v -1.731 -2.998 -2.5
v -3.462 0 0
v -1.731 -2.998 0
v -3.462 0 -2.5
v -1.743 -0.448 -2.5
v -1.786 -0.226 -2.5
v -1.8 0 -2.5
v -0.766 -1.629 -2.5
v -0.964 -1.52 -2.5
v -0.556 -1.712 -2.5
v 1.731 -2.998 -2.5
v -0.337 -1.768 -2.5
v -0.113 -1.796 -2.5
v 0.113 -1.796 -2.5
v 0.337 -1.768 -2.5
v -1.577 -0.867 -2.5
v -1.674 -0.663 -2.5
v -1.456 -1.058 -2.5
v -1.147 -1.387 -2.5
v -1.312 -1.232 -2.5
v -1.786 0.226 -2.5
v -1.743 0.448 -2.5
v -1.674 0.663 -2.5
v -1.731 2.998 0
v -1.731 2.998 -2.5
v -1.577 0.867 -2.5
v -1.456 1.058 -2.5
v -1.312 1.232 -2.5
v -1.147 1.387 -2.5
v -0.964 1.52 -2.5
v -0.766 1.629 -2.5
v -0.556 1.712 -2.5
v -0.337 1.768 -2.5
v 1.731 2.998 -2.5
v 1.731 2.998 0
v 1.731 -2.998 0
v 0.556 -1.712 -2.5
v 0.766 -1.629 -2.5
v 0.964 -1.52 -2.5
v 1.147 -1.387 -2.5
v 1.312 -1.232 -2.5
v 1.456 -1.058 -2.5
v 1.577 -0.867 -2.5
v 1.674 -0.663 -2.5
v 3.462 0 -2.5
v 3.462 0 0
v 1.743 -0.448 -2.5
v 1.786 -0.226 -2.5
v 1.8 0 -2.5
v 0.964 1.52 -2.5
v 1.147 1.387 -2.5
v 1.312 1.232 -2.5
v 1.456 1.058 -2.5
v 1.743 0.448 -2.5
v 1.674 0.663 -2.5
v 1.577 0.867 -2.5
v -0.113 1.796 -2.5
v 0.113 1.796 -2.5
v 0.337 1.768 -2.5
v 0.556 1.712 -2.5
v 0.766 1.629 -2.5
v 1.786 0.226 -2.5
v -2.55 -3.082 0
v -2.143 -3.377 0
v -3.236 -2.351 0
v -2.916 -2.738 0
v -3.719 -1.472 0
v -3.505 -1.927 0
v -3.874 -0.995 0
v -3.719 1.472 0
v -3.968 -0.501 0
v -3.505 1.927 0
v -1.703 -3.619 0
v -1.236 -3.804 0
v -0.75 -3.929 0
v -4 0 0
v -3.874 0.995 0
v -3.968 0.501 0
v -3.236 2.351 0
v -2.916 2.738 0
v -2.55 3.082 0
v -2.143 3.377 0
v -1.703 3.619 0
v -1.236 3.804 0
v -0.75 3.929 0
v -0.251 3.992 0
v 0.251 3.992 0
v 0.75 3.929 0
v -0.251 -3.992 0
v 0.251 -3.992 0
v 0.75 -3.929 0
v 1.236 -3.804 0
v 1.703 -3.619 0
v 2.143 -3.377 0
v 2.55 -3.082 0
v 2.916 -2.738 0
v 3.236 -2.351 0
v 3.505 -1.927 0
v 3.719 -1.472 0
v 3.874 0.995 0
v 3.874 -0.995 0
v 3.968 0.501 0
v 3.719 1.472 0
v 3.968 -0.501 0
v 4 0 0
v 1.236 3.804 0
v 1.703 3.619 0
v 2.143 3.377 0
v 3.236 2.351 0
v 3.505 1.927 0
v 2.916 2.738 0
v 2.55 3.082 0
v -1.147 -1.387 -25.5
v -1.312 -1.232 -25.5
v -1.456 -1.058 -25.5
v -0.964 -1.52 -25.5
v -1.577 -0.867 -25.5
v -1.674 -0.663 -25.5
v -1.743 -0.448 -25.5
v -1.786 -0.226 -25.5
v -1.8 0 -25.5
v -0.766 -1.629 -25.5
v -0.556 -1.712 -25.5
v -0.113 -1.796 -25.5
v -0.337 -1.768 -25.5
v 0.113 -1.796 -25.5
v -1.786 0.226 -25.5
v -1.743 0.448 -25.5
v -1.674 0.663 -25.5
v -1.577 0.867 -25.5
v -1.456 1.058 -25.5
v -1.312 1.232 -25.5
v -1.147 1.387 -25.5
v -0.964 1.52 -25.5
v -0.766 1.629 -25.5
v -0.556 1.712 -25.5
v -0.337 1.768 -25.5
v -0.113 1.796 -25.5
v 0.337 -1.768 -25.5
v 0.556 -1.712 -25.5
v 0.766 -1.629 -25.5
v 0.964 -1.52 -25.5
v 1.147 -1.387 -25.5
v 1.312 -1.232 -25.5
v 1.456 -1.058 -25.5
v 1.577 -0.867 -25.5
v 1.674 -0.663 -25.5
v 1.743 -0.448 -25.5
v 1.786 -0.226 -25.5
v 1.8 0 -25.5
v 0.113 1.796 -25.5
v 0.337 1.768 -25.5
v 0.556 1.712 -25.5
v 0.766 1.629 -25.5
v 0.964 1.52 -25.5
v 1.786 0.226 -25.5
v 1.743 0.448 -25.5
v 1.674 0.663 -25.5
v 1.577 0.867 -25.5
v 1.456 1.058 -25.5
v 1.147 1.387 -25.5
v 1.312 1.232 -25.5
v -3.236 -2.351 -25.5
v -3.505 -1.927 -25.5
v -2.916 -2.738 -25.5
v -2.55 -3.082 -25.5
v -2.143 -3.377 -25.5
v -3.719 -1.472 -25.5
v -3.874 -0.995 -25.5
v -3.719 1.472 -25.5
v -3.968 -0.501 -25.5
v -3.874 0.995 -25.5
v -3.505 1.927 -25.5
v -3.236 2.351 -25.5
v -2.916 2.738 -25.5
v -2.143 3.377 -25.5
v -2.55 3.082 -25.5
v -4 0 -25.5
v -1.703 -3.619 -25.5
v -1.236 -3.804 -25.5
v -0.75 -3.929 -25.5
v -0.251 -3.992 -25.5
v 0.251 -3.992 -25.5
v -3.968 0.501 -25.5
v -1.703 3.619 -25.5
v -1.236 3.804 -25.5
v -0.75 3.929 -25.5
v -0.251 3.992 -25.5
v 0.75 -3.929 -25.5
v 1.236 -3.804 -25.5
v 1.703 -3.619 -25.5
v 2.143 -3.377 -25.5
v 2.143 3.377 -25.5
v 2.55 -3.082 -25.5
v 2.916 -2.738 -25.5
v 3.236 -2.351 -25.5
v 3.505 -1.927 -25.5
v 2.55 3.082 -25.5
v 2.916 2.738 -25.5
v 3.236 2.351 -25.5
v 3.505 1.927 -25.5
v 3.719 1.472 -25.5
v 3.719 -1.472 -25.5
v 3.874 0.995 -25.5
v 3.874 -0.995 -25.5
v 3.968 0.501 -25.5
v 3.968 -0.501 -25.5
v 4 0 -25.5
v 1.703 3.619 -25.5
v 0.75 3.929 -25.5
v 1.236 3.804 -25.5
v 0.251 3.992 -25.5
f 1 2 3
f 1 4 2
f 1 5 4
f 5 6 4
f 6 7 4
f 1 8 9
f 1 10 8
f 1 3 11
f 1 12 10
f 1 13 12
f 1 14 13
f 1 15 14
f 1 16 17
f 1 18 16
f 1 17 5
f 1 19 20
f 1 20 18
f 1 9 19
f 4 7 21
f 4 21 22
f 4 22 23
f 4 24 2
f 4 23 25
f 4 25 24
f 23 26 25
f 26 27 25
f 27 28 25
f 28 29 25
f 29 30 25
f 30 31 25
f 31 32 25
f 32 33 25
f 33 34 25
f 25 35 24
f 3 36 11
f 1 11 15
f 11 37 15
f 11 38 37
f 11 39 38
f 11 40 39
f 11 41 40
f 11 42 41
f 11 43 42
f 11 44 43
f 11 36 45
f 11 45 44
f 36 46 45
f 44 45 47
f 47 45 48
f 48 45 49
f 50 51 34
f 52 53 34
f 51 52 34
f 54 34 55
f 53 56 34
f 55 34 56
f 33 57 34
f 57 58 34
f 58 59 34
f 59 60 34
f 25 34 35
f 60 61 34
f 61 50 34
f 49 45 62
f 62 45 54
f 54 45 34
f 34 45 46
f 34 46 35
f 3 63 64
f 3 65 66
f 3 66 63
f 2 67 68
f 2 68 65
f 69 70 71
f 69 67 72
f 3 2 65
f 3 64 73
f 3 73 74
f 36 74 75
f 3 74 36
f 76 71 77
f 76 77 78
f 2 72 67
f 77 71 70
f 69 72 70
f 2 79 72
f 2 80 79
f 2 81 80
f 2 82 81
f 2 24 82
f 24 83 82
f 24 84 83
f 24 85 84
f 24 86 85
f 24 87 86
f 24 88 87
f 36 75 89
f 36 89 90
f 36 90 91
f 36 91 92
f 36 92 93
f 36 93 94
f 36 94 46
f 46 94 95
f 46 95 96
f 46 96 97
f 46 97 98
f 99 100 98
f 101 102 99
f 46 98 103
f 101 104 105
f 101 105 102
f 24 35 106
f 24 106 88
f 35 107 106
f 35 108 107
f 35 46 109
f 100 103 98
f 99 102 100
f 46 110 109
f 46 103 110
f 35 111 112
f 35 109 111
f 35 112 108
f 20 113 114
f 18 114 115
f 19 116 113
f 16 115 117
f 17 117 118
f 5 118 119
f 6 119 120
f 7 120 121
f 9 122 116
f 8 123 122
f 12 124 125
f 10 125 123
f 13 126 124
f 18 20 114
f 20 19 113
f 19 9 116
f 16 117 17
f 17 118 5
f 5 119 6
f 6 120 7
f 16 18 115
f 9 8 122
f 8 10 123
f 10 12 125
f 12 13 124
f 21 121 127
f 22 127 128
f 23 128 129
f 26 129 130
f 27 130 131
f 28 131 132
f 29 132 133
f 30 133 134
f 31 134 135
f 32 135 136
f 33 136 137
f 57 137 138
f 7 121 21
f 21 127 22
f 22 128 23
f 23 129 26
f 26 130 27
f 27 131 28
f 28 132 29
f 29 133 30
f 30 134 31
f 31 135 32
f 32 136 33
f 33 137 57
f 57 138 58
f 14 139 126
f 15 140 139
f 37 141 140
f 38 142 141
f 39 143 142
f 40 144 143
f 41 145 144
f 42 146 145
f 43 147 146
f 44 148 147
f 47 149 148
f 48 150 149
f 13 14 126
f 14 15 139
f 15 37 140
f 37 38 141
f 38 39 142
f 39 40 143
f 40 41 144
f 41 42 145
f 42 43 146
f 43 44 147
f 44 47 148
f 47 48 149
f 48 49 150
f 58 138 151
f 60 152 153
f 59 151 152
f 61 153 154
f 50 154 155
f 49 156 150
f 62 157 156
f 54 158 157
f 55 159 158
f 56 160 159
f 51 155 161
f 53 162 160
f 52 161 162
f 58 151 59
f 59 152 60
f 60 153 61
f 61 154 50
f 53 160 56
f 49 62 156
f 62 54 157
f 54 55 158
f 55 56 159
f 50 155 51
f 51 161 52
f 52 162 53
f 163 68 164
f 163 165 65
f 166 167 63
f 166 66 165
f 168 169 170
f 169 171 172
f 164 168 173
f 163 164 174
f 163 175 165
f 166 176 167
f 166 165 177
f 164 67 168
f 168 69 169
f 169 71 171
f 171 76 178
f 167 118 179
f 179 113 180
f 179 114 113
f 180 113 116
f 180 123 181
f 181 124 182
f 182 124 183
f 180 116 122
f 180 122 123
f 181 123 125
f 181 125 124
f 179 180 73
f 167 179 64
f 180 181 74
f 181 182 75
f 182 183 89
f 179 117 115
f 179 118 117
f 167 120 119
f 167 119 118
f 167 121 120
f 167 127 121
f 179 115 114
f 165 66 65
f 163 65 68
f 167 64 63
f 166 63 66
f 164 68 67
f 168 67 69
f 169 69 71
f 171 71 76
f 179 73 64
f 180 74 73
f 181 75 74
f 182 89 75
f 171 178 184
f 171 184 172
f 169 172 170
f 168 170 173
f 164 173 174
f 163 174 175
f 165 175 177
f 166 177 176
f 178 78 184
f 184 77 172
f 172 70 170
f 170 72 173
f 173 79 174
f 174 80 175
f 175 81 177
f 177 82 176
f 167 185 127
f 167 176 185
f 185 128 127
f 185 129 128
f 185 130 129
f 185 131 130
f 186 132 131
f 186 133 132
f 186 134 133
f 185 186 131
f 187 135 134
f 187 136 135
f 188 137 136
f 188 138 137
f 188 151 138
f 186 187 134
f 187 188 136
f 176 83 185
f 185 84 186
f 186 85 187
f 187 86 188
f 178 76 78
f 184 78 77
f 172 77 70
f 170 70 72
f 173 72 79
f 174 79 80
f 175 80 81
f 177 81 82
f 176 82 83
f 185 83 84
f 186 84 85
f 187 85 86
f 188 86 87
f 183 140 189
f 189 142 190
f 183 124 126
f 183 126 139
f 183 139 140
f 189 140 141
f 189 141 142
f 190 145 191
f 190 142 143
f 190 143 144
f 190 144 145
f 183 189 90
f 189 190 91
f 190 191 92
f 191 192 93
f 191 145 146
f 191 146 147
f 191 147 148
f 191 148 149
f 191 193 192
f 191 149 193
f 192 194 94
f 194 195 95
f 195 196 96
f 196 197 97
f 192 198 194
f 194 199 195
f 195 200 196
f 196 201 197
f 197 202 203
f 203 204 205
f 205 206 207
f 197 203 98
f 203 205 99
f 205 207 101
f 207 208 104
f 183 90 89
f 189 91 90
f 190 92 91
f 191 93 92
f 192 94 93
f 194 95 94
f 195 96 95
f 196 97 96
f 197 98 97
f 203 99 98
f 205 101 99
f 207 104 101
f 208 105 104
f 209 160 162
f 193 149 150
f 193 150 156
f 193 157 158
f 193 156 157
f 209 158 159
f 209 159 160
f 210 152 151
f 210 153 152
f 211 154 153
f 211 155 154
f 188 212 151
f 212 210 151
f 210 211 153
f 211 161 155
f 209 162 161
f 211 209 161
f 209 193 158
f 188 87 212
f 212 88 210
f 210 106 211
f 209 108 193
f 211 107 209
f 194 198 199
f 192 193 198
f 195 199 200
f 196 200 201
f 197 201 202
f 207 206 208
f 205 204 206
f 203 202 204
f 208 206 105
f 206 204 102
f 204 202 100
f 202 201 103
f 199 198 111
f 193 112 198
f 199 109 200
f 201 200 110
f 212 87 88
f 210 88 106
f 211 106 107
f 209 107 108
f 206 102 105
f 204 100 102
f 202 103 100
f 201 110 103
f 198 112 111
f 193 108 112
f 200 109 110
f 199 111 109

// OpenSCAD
$fn = 50;

difference() {
	union() {
		translate(v = [0, 0, -25.5]) {
			cylinder(h = 28.5, r = 4.0);
		}
	}
	union() {
		translate(v = [0, 0, 0]) {
			rotate(a = [0, 0, 0]) {
				difference() {
					union() {
						translate(v = [0, 0, -2.5]) {
							linear_extrude(height = 2.5) {
								polygon(points = [[3.4619999999999997, 0.0], [1.7310000000000003, 2.9981799479017264], [-1.7309999999999992, 2.9981799479017264], [-3.4619999999999997, 4.2397272186481365e-16], [-1.7310000000000014, -2.998179947901726], [1.7309999999999977, -2.9981799479017277]]);
							}
						}
					}
					union();
				}
			}
		}
		#cylinder(h = 3, r = 5.0);
		#translate(v = [0, 0, -100.0]) {
			cylinder(h = 200, r = 1.8);
		}
	}
}
